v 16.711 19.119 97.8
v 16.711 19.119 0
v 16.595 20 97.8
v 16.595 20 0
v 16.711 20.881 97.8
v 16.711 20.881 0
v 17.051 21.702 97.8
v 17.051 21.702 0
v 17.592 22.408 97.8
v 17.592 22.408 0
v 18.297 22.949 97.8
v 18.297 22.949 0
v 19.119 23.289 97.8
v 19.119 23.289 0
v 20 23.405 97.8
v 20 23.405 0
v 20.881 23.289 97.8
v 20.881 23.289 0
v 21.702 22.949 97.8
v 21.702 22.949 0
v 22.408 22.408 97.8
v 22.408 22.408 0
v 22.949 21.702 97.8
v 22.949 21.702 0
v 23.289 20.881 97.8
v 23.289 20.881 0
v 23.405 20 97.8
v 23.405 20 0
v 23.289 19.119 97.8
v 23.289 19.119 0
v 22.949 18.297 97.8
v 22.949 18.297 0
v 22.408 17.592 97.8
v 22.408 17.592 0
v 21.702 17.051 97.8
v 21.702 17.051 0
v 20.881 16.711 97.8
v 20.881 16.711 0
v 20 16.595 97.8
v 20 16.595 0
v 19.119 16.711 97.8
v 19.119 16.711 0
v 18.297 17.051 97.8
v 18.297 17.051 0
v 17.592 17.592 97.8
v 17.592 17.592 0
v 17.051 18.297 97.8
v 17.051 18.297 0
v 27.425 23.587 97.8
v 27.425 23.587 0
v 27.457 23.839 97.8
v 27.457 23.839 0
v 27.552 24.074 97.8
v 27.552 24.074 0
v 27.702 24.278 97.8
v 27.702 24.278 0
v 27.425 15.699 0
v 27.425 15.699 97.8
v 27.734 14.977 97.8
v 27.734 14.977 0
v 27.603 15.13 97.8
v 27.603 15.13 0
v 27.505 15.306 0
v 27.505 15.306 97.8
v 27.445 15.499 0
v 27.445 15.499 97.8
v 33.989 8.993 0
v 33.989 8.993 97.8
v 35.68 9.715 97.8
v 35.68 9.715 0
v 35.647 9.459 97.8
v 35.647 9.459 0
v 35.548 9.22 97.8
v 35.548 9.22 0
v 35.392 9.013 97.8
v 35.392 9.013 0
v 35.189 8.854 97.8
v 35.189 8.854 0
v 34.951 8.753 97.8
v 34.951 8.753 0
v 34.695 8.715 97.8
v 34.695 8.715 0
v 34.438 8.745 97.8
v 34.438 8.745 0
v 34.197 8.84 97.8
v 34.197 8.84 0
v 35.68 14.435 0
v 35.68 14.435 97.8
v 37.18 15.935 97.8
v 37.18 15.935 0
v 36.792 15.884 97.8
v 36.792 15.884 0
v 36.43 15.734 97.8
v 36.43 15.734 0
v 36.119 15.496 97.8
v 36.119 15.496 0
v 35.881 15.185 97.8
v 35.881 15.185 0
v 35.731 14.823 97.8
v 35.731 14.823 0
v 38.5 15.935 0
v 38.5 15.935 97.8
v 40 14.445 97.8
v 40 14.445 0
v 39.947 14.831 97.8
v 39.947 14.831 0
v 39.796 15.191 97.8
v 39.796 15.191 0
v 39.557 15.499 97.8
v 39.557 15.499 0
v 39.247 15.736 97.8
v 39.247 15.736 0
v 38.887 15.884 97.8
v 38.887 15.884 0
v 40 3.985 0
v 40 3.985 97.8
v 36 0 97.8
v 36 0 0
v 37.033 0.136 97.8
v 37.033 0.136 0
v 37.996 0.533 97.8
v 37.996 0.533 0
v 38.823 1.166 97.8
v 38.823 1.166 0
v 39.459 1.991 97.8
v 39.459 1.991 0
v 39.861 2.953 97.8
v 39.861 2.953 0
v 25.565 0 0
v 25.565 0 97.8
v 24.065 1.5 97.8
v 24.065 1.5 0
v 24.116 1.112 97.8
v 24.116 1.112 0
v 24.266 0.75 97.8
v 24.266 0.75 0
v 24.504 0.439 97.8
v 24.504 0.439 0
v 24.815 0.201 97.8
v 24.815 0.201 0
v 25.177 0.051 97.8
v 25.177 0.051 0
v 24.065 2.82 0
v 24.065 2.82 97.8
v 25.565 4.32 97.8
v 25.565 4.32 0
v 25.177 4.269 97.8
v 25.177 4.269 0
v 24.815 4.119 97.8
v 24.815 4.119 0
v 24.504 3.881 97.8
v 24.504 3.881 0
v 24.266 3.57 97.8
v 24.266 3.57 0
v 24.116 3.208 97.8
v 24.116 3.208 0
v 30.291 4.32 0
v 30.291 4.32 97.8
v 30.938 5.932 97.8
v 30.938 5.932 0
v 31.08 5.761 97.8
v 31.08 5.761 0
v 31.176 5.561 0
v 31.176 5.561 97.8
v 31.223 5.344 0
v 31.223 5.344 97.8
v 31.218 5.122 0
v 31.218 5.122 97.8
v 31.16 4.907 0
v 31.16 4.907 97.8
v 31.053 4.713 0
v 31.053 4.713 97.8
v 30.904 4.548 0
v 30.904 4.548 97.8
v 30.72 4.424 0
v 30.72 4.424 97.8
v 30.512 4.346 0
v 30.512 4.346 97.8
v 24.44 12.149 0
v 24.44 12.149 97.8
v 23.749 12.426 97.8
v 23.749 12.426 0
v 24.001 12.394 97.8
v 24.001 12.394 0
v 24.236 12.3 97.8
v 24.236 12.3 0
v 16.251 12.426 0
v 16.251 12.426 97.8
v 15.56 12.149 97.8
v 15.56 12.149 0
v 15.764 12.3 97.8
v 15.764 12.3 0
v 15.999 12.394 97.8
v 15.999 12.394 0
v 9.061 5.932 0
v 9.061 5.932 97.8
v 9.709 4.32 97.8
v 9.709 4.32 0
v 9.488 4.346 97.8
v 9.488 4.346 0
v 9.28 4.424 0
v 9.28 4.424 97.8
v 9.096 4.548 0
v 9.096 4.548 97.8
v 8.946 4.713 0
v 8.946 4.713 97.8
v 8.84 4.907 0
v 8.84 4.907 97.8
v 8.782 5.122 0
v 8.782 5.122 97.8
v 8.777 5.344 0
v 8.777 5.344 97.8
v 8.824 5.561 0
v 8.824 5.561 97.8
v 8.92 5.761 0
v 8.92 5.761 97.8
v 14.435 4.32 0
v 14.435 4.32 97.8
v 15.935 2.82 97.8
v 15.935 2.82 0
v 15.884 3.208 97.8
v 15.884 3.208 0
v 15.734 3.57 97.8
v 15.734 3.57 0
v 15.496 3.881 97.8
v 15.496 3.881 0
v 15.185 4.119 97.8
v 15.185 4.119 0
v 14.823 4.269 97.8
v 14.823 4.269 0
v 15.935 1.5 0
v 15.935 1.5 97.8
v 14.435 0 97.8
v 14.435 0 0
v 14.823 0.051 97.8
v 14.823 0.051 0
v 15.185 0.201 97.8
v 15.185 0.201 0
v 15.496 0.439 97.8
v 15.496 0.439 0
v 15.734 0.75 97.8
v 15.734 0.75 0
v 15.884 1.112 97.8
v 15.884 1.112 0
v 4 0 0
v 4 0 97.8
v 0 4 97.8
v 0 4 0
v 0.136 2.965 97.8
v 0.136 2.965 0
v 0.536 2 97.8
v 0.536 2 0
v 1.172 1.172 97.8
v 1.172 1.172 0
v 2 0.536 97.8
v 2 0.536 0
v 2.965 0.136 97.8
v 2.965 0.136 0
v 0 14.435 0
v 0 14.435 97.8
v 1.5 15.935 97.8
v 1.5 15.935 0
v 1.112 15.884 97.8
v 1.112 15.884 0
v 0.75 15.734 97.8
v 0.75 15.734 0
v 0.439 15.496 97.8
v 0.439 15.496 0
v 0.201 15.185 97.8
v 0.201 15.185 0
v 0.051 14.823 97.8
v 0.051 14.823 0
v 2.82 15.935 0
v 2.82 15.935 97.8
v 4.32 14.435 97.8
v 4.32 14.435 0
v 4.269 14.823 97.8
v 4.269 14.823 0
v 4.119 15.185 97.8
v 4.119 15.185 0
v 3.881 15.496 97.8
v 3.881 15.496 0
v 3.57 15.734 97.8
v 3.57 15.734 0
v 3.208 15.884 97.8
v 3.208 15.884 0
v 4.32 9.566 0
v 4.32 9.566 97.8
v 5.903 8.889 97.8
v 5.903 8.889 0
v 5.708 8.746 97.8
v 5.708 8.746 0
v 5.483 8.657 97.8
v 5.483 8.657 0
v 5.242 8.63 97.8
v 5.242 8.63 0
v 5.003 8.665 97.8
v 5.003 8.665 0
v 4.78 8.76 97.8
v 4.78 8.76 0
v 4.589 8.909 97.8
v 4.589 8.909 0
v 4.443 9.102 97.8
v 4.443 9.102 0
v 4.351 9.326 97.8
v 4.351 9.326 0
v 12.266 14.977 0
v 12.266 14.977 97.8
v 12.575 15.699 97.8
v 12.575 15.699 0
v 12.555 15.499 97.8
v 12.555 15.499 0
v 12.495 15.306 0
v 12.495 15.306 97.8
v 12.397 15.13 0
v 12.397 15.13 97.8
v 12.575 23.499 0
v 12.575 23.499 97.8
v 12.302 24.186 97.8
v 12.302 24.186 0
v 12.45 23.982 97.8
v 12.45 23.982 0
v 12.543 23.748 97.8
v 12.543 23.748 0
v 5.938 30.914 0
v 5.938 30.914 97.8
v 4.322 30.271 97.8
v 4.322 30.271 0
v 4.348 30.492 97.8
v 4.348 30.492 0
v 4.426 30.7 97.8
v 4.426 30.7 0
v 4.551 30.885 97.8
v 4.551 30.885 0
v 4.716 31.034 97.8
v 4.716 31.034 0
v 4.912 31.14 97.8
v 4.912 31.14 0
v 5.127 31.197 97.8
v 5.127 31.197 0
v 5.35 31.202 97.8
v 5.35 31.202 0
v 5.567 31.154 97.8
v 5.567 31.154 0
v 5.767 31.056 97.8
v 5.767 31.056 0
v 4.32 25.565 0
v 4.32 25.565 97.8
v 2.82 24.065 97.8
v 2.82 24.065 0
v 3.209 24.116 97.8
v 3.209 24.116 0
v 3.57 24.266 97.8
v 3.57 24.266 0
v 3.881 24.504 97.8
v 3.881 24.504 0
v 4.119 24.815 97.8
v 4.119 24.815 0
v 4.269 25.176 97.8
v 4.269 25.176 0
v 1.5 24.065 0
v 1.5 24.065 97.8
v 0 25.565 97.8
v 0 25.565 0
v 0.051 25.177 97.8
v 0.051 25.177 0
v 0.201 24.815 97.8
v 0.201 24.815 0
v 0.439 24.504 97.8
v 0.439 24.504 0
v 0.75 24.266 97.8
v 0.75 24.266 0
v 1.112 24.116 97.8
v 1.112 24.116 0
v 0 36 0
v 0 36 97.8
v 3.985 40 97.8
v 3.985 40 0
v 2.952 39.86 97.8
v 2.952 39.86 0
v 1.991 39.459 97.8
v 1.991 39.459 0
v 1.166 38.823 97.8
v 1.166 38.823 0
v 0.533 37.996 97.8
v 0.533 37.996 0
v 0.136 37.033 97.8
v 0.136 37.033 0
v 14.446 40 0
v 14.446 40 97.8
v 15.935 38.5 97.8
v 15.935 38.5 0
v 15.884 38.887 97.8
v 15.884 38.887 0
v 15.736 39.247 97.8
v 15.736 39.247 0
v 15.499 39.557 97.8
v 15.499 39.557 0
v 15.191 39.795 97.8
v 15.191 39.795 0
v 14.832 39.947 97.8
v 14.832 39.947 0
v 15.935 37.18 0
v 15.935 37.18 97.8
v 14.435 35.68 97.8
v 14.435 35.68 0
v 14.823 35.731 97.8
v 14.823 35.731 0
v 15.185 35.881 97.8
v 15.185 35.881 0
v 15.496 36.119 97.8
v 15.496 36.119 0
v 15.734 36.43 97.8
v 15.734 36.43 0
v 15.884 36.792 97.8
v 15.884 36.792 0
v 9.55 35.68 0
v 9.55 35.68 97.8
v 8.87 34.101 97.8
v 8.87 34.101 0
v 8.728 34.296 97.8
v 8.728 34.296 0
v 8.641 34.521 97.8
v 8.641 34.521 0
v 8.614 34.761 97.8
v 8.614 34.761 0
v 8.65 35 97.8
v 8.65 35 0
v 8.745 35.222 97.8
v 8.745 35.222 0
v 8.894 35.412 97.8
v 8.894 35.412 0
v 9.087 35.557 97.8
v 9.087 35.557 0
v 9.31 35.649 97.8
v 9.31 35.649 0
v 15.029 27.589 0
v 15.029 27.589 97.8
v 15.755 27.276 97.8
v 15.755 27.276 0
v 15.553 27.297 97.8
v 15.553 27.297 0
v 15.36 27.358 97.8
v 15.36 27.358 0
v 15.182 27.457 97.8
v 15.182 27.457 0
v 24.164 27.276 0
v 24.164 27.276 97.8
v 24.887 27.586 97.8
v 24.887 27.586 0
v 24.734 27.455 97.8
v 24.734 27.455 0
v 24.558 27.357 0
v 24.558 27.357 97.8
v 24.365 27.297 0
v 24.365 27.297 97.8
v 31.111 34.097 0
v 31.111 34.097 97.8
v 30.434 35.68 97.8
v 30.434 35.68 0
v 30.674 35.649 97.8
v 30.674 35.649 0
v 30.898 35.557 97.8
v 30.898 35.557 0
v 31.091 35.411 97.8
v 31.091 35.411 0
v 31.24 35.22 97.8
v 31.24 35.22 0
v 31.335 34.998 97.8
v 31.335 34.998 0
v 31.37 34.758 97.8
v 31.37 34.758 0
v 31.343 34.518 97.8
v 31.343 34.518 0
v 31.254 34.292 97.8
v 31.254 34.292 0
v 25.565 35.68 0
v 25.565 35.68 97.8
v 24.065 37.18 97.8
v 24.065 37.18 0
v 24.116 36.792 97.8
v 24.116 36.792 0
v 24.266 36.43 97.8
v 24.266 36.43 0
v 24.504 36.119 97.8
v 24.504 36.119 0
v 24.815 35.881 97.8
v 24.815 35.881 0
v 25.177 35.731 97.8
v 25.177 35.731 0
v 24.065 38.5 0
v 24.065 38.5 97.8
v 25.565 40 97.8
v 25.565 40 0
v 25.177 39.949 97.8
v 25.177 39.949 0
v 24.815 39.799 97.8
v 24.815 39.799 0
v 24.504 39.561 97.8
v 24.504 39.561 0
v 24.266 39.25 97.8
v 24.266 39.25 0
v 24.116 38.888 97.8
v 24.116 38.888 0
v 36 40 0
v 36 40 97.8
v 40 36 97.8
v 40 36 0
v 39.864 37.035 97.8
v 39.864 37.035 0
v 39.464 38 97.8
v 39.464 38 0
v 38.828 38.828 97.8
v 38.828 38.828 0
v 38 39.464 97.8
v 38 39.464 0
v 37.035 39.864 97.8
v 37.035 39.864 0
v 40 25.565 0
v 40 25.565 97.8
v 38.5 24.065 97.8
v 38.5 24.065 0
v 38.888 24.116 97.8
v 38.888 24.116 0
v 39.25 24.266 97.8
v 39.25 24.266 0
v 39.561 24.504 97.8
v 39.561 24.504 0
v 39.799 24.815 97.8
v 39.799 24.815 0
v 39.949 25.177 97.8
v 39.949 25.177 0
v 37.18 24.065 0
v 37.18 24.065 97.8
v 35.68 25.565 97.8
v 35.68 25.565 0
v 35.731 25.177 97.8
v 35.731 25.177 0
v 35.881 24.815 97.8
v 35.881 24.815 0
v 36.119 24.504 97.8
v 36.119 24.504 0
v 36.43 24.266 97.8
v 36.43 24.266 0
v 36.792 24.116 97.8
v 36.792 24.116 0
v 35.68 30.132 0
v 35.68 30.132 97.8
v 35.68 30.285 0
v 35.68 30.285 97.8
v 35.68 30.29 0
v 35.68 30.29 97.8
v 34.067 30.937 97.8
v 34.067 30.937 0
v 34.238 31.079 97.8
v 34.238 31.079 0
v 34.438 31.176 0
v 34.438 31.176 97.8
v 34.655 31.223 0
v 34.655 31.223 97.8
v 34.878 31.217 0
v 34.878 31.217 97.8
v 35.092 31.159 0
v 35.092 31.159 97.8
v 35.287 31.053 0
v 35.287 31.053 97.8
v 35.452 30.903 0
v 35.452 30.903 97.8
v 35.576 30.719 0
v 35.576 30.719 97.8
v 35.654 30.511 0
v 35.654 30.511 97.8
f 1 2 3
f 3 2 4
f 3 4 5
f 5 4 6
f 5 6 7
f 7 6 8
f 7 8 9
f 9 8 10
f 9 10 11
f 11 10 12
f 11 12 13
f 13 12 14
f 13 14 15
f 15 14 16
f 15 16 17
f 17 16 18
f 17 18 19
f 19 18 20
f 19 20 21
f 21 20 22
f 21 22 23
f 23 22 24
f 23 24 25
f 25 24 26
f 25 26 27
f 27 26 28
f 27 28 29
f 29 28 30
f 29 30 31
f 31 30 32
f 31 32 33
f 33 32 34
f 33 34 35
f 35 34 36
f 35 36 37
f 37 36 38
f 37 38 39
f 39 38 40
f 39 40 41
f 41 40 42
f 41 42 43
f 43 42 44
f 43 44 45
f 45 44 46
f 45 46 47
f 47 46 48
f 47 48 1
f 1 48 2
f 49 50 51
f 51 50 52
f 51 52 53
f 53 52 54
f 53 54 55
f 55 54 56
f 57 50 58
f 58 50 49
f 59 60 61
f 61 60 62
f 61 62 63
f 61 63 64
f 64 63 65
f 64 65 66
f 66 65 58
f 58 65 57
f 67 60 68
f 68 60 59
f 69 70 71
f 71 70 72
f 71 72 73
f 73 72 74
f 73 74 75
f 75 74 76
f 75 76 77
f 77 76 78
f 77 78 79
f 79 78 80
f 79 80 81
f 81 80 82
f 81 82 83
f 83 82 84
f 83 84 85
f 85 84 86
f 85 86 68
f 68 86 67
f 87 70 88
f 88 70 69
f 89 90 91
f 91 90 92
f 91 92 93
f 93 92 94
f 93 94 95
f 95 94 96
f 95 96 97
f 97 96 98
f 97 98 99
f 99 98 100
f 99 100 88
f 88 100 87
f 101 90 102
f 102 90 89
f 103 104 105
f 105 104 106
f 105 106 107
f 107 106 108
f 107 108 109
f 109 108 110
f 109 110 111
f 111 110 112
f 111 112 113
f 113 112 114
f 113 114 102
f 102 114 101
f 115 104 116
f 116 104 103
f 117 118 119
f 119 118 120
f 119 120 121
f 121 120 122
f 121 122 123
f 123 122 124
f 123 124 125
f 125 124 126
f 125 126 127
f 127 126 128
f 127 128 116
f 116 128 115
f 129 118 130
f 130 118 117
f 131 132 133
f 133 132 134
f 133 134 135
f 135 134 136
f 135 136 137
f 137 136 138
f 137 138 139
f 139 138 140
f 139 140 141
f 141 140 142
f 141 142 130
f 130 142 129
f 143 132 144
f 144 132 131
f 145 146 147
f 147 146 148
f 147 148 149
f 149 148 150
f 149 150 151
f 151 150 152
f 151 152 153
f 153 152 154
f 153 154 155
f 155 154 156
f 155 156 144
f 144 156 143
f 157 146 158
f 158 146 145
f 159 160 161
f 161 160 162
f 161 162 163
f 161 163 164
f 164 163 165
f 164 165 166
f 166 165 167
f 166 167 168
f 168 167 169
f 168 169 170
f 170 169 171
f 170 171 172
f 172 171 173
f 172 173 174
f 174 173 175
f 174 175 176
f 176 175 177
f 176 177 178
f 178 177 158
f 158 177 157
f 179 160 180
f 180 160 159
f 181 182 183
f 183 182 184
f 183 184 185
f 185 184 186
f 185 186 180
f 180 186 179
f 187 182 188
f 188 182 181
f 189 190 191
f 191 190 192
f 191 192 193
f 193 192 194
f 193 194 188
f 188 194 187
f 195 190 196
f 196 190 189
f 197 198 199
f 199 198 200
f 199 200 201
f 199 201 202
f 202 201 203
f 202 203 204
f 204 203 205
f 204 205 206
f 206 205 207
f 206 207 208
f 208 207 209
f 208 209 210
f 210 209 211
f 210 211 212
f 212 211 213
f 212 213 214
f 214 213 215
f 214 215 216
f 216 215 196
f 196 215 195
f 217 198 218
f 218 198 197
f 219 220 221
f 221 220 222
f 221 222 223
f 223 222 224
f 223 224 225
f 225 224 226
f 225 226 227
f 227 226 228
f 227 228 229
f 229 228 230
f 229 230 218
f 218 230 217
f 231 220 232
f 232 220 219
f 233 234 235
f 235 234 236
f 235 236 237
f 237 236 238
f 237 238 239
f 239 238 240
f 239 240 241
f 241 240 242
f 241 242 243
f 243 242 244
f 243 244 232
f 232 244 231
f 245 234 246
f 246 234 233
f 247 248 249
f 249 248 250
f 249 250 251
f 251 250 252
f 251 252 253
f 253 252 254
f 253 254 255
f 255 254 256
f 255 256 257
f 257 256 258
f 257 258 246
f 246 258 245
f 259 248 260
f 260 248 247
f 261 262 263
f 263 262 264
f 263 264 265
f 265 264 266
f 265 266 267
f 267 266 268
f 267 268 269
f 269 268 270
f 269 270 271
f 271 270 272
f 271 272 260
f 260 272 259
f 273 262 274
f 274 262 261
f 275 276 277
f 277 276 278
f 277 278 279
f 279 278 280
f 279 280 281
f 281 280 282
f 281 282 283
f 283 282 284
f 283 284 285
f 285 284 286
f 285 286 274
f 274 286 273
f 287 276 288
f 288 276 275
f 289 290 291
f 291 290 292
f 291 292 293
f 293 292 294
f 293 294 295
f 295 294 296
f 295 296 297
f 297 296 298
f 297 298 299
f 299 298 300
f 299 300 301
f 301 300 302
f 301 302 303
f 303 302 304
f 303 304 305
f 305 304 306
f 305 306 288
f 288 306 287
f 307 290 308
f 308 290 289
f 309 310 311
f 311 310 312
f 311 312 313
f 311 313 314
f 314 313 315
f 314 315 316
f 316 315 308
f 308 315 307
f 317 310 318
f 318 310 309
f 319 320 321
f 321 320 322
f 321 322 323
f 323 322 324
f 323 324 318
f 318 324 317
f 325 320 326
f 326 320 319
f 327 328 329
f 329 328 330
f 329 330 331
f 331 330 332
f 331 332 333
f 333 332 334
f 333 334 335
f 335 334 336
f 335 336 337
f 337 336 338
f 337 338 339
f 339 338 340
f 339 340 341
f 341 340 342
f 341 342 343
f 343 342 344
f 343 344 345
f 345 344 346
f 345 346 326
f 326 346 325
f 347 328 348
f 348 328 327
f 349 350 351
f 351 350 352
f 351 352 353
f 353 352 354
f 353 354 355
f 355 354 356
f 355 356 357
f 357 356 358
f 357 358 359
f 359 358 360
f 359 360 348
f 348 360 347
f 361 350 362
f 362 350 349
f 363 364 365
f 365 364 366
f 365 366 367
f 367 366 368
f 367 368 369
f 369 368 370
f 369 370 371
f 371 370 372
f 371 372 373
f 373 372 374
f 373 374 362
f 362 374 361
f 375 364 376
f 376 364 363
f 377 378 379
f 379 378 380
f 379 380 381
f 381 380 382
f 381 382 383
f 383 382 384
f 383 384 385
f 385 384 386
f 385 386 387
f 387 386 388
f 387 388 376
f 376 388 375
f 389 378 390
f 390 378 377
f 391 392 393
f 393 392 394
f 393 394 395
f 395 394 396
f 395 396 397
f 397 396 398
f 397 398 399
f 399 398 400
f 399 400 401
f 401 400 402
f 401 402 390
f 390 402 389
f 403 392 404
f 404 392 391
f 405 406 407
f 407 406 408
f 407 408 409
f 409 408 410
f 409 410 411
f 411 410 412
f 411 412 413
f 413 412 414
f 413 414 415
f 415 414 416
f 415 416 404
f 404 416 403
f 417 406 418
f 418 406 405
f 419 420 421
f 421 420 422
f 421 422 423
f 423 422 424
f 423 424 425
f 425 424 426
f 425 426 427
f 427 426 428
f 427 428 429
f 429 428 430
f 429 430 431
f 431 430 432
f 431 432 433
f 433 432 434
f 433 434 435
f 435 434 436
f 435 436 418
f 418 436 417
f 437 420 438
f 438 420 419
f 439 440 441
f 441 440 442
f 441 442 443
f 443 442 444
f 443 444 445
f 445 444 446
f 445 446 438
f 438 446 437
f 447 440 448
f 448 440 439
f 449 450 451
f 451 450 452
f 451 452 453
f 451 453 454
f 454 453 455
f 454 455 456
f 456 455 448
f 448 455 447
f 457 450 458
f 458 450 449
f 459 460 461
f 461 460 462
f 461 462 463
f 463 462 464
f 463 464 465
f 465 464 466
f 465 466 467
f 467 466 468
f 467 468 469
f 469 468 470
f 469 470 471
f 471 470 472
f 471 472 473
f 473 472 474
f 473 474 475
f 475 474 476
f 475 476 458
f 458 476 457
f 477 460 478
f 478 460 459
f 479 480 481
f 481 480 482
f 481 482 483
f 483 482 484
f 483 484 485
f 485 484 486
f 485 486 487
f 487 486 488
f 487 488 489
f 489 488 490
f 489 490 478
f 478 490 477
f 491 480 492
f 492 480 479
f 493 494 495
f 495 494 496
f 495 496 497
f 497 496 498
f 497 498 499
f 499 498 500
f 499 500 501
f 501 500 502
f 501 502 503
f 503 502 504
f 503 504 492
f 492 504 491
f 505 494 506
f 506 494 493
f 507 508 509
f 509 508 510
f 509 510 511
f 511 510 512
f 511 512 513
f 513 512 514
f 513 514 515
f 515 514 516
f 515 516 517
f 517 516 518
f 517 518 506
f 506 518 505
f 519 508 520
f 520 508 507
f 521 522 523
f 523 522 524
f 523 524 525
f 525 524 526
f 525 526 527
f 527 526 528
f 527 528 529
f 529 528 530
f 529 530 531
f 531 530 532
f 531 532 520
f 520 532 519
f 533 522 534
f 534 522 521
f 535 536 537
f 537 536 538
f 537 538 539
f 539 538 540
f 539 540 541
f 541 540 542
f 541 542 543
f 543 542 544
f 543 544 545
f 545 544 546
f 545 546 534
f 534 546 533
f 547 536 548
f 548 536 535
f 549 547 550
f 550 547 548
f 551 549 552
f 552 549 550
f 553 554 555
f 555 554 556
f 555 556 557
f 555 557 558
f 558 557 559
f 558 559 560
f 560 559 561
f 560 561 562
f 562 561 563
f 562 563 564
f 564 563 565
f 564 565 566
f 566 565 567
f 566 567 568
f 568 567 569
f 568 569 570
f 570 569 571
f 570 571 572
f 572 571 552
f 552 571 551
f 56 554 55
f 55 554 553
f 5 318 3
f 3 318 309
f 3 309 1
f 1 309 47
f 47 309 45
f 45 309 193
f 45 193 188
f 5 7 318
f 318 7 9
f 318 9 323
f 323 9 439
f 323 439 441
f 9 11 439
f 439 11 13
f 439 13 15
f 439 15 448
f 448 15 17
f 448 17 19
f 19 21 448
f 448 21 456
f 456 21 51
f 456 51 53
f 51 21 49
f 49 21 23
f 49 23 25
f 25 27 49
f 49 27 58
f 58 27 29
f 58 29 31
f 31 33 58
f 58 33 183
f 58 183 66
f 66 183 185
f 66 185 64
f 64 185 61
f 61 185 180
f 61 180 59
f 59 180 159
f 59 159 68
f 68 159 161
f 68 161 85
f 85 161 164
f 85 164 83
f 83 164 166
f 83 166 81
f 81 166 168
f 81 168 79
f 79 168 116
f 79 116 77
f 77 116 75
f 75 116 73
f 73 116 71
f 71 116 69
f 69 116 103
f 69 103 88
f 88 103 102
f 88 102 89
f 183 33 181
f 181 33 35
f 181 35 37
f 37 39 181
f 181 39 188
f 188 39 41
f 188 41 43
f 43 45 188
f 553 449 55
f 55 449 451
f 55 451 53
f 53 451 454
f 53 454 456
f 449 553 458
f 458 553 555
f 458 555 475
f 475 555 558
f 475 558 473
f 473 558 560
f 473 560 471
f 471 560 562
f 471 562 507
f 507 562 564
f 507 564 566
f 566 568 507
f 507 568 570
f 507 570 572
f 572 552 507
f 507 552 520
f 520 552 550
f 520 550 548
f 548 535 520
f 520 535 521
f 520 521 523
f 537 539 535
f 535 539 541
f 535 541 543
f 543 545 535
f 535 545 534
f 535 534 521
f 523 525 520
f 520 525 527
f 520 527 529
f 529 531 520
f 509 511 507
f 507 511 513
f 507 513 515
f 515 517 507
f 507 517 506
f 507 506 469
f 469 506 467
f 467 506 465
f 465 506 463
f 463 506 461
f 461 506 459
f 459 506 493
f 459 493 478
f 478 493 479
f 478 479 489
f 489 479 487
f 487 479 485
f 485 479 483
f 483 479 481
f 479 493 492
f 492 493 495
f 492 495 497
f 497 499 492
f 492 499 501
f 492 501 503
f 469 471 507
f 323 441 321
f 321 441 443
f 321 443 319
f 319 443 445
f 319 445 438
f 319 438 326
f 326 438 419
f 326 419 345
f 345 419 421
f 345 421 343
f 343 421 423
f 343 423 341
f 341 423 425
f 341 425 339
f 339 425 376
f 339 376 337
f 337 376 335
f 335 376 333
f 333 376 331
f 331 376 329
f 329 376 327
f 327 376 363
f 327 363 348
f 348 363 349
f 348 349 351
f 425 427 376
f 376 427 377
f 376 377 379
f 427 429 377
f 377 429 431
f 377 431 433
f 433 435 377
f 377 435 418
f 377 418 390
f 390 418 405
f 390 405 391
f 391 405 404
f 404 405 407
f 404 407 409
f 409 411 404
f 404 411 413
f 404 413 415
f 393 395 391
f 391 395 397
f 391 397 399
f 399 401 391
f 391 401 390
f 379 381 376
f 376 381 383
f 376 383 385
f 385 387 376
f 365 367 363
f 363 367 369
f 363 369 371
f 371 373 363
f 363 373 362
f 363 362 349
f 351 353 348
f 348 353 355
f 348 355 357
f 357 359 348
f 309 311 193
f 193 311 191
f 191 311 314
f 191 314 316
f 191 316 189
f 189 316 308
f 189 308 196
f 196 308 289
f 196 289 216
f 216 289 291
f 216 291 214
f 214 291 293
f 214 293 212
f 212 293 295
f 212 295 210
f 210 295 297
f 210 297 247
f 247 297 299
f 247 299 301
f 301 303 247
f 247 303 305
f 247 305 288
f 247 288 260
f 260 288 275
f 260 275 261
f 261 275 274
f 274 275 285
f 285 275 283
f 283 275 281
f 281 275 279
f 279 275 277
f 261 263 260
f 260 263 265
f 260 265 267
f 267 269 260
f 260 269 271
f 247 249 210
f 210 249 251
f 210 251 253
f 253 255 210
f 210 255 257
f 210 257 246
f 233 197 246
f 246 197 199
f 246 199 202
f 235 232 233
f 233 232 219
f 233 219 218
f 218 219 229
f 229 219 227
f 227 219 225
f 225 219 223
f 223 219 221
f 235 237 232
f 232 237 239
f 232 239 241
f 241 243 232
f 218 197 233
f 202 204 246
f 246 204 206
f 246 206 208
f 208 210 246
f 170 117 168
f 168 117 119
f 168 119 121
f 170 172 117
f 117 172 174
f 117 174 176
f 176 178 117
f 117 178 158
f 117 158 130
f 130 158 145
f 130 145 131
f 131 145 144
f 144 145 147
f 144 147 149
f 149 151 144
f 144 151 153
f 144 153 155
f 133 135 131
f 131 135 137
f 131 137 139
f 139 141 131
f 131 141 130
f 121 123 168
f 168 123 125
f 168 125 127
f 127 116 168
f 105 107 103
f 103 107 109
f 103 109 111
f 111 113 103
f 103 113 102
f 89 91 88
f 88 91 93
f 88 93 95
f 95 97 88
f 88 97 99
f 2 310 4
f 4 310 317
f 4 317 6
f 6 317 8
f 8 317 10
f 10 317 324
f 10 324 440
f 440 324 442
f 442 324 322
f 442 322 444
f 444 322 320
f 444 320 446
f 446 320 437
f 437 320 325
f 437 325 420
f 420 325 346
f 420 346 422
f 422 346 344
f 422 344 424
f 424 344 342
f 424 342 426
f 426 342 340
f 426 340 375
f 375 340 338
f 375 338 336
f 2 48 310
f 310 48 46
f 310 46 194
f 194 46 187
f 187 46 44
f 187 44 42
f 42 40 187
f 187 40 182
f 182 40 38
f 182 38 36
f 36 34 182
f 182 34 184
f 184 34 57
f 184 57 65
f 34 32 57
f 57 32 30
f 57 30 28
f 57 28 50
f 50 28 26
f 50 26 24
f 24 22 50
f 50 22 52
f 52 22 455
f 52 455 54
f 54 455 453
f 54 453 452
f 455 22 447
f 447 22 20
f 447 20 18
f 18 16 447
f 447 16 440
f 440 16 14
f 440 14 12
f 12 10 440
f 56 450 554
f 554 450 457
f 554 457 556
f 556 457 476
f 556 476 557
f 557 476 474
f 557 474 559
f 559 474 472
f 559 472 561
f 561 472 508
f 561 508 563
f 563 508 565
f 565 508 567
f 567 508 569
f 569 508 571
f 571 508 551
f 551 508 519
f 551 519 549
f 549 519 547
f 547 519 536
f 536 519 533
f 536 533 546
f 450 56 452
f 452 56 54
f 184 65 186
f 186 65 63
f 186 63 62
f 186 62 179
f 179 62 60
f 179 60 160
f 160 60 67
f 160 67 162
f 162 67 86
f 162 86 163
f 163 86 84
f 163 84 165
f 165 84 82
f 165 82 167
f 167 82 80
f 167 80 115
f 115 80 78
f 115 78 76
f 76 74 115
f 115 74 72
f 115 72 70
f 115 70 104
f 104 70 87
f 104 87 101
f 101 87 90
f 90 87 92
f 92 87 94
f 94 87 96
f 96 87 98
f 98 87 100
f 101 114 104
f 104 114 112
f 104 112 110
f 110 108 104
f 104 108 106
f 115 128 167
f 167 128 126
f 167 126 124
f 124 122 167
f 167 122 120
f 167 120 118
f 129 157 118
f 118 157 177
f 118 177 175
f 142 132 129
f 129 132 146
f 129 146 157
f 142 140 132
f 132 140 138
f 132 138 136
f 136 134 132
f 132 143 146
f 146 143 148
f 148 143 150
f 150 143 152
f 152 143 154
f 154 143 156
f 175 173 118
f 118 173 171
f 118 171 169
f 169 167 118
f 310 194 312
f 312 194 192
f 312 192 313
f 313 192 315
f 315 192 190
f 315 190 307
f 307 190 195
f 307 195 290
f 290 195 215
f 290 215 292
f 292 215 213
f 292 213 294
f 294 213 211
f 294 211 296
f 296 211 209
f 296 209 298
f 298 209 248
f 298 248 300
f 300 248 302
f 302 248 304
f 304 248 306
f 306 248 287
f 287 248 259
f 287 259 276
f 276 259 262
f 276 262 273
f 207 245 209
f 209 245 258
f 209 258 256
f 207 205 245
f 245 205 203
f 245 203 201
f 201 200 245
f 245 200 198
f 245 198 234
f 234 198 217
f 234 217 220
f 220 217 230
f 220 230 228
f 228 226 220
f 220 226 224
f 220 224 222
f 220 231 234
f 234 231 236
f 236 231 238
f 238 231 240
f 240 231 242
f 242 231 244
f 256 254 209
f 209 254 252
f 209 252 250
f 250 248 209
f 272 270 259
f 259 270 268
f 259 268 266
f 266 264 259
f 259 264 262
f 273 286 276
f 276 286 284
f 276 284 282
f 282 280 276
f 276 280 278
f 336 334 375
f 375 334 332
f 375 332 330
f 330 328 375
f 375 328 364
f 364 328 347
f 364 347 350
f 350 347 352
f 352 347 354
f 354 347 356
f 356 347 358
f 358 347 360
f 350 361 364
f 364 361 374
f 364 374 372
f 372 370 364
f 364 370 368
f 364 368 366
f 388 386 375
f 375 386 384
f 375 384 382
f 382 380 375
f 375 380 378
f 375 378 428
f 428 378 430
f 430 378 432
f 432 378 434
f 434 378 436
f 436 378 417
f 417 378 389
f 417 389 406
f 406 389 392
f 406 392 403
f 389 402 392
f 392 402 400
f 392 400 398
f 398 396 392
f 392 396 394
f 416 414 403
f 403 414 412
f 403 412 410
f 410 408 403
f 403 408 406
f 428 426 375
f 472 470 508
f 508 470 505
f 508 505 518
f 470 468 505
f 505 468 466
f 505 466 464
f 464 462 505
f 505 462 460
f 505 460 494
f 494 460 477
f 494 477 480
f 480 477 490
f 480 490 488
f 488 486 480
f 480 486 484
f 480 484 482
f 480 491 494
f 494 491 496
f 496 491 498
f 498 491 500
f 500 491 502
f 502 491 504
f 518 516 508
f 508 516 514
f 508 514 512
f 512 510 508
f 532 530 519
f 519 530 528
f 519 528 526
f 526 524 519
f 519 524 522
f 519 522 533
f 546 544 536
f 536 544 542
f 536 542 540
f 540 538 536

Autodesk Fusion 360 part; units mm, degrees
sketch "Sketch1" plane through (0, 0, 0) normal (0, 0, 1) x (1, 0, 0)
  line L0 (4, 0) -> (14.435, 0)
  line L1 (40, 0) -> (40, 36)
  line L2 (36, 40) -> (0, 40)
  line L3 (0, 40) -> (0, 4)
  line L4 (0, 0) -> (0, 20)
  line L5 (0, 40) -> (20, 40)
  circle A0 centre (20, 20) radius 3.405
  line L6 (40, 40) -> (24.065, 40)
  line L7 (40, 40) -> (25.565, 40)
  line L8 (40, 40) -> (40, 25.565)
  line L9 (38.5, 24.065) -> (37.18, 24.065)
  line L10 (24.065, 38.5) -> (24.065, 37.18)
  line L11 (25.565, 35.68) -> (30.4344, 35.68)
  line L12 (35.68, 25.565) -> (35.68, 30.2904)
  line L13 (20, 20) -> (20, 40)
  line L14 (20, 20) -> (0, 20)
  line L15 (20, 20) -> (20, 0)
  line L16 (20, 20) -> (40, 20)
  line L17 (14.435, 35.68) -> (9.5498, 35.68)
  line L18 (15.935, 38.5) -> (15.935, 37.18)
  line L19 (4, 40) -> (14.435, 40)
  line L20 (0, 36) -> (0, 25.565)
  line L21 (1.5, 24.065) -> (2.8205, 24.065)
  line L22 (4.3205, 25.5645) -> (4.3219, 30.271)
  line L23 (25.565, 4.32) -> (1890698.4728, 3)
  line L24 (24.065, 1.5) -> (24.065, 2.82)
  line L25 (36, 0) -> (25.565, 0)
  line L26 (40, 4) -> (40, 14.435)
  line L27 (38.5, 15.935) -> (37.18, 15.935)
  line L28 (35.68, 14.435) -> (35.68, 9.7153)
  line L29 (14.435, 4.32) -> (9.7085, 4.32)
  line L30 (15.935, 1.5) -> (15.935, 2.82)
  line L31 (0, 0) -> (15.935, 0)
  line L32 (1.5, 15.935) -> (2.82, 15.935)
  line L33 (4.32, 14.435) -> (4.32, 9.5656)
  line L34 (0, 14.435) -> (0, 0)
  line L35 (0, 0) -> (15.935, 0)
  line L36 (5.9379, 30.9139) -> (12.3015, 24.1858)
  line L37 (8.8698, 34.1008) -> (15.0285, 27.5893)
  line L38 (30.9385, 5.9323) -> (24.4402, 12.1491)
  line L39 (33.9887, 8.9927) -> (27.7337, 14.9768)
  line L40 (5.903, 8.8892) -> (12.2663, 14.9767)
  line L41 (9.0615, 5.9323) -> (15.5598, 12.1491)
  line L42 (31.1111, 34.0973) -> (24.8873, 27.5855)
  line L43 (33.957, 30.8226) -> (27.7021, 24.2782)
  line L44 (27.425, 23.5872) -> (27.425, 15.6993)
  line L45 (16.2511, 12.4265) -> (23.7489, 12.4265)
  line L46 (12.575, 15.6993) -> (12.575, 23.4986)
  line L47 (15.7551, 27.2765) -> (24.1644, 27.2765)
  line L48 (35.68, 30.1316) -> (35.68, 30.2853)
  line L49 (34.0667, 30.9373) -> (34.0632, 30.9337)
  arc A1 (33.9887, 8.9927) -> (35.68, 9.7153) centre (34.68, 9.7153) ccw
  line L50 (35.68, 7.3747) -> (35.68, 9.7153)
  arc A2 (27.7021, 24.2782) -> (27.425, 23.5872) centre (28.425, 23.5872) ccw
  arc A3 (35.68, 30.2904) -> (34.0667, 30.9373) centre (34.7436, 30.2904) ccw
  arc A4 (5.9379, 30.9139) -> (4.3219, 30.271) centre (5.2579, 30.2707) ccw
  arc A5 (12.575, 23.4986) -> (12.3015, 24.1858) centre (11.575, 23.4986) ccw
  arc A6 (12.2663, 14.9767) -> (12.575, 15.6993) centre (11.575, 15.6993) ccw
  arc A7 (4.32, 9.5656) -> (5.903, 8.8892) centre (5.256, 9.5656) ccw
  arc A8 (9.0615, 5.9323) -> (9.7085, 4.32) centre (9.7085, 5.256) ccw
  arc A9 (30.2914, 4.32) -> (30.9385, 5.9323) centre (30.2914, 5.256) ccw
  arc A10 (24.4402, 12.1491) -> (23.7489, 12.4265) centre (23.7489, 11.4265) ccw
  arc A11 (16.2511, 12.4265) -> (15.5598, 12.1491) centre (16.2511, 11.4265) ccw
  arc A12 (27.425, 15.6993) -> (27.7337, 14.9768) centre (28.425, 15.6993) ccw
  arc A13 (24.1644, 27.2765) -> (24.8873, 27.5855) centre (24.1644, 28.2765) ccw
  arc A14 (15.0285, 27.5893) -> (15.7551, 27.2765) centre (15.7551, 28.2765) ccw
  arc A15 (37.18, 15.935) -> (35.68, 14.435) centre (37.18, 14.435) ccw
  arc A16 (40, 14.435) -> (38.5, 15.935) centre (38.5, 14.435) ccw
  arc A17 (35.68, 25.565) -> (37.18, 24.065) centre (37.18, 25.565) ccw
  arc A18 (38.5, 24.065) -> (40, 25.565) centre (38.5, 25.565) ccw
  arc A19 (25.565, 40) -> (24.065, 38.5) centre (25.565, 38.5) ccw
  arc A20 (24.065, 37.18) -> (25.565, 35.68) centre (25.565, 37.18) ccw
  arc A21 (14.435, 35.68) -> (15.935, 37.18) centre (14.435, 37.18) ccw
  arc A22 (15.935, 38.5) -> (14.435, 40) centre (14.435, 38.5) ccw
  arc A23 (2.8205, 24.065) -> (4.3205, 25.5645) centre (2.8205, 25.565) ccw
  arc A24 (0, 25.565) -> (1.5, 24.065) centre (1.5, 25.565) ccw
  arc A25 (4.32, 14.435) -> (2.82, 15.935) centre (2.82, 14.435) ccw
  arc A26 (1.5, 15.935) -> (0, 14.435) centre (1.5, 14.435) ccw
  arc A27 (15.935, 2.82) -> (14.435, 4.32) centre (14.435, 2.82) ccw
  arc A28 (1890698.4728, 0) -> (1890698.4728, 3) centre (1890698.4728, 1.5) ccw
  arc A29 (24.065, 1.5) -> (25.565, 0) centre (25.565, 1.5) ccw
  arc A30 (14.435, 0) -> (15.935, 1.5) centre (14.435, 1.5) ccw
  arc A31 (25.565, 4.32) -> (24.065, 2.82) centre (25.565, 2.82) ccw
  arc A32 (4, 40) -> (0, 36) centre (4, 36) ccw
  arc A33 (0, 4) -> (4, 0) centre (4, 4) ccw
  arc A34 (36, 0) -> (40, 4) centre (36, 4) ccw
  arc A35 (40, 36) -> (36, 40) centre (36, 36) ccw
  arc A36 (9.5498, 35.68) -> (8.8698, 34.1008) centre (9.5498, 34.744) ccw
  arc A37 (31.1111, 34.0973) -> (30.4344, 35.68) centre (30.4344, 34.744) ccw
  line L51 (40, 25.1972) -> (40, 36)
  line L52 (33.957, 30.8226) -> (34.0632, 30.9337)
  point P0 (20, 20)
  point P1 (40, 24.065)
  point P2 (35.68, 24.065)
  point P3 (24.065, 35.68)
  point P4 (35.68, 32.6253)
  point P5 (35.68, 7.3747)
  dimension "d1" = 40
  dimension "d2" = 40
  dimension "d8" = 15.935
  dimension "d9" = 15.935
  dimension "d10" = 4.32
  dimension "d11" = 4.32
  dimension "d16" = 90
  dimension "d17" = 90
  dimension "d22" = 4.32
  dimension "d23" = 4.32
  dimension "d24" = 4.32
  dimension "d25" = 4.32
  dimension "d26" = 8.13
  dimension "d27" = 4.32
  dimension "d28" = 14.85
  dimension "d29" = 14.85
  dimension "d30" = 7.425
  dimension "d31" = 25.2506
  dimension "d32" = 2.34
  dimension "d33" = 2.34
  dimension "d35" = 1
  dimension "d36" = 20.57
  dimension "d37" = 1
  dimension "d38" = 7.9779
  dimension "d39" = 0.9364
  dimension "d40" = 0.936
  dimension "d41" = 1
  dimension "d42" = 1
  dimension "d43" = 0.936
  dimension "d44" = 0.936
  dimension "d45" = 0.936
  dimension "d46" = 1
  dimension "d47" = 1
  dimension "d48" = 1
  dimension "d49" = 1
  dimension "d50" = 1
  dimension "d51" = 1.5
  dimension "d52" = 1.5
  dimension "d53" = 1.5
  dimension "d54" = 1.5
  dimension "d55" = 1.5
  dimension "d56" = 1.5
  dimension "d57" = 1.5
  dimension "d58" = 1.5
  dimension "d59" = 4
  dimension "d60" = 4
  dimension "d61" = 0.936
  dimension "d62" = 0.936
extrude "Extrude1" add sketch "Sketch1" along normal blind 97.8 contours L0 L3 L4 A0 L14 L15 L29 L30 L31 L32 L33 L34 L35 L40 L41 L45 L46 A6 A7 A8 A11 A25 A26 A27 A30 A33 | L2 L3 L5 A0 L13 L14 L17 L18 L19 L20 L21 L22 L36 L37 L46 L47 A4 A5 A14 A21 A22 A23 A24 A32 A36 | L1 L2 A0 L6 L7 L8 L9 L10 L11 L12 L13 L16 L42 L43 L44 L47 L48 L49 A2 A3 A13 A17 A18 A19 A20 A35 A37 L51 L52 | L1 A0 L15 L16 L23 L26 L27 L28 L38 L39 L44 L45 A1 A9 A10 A12 A15 A16 | L1 L23 L24 L25 L26 A29 A31 A34
